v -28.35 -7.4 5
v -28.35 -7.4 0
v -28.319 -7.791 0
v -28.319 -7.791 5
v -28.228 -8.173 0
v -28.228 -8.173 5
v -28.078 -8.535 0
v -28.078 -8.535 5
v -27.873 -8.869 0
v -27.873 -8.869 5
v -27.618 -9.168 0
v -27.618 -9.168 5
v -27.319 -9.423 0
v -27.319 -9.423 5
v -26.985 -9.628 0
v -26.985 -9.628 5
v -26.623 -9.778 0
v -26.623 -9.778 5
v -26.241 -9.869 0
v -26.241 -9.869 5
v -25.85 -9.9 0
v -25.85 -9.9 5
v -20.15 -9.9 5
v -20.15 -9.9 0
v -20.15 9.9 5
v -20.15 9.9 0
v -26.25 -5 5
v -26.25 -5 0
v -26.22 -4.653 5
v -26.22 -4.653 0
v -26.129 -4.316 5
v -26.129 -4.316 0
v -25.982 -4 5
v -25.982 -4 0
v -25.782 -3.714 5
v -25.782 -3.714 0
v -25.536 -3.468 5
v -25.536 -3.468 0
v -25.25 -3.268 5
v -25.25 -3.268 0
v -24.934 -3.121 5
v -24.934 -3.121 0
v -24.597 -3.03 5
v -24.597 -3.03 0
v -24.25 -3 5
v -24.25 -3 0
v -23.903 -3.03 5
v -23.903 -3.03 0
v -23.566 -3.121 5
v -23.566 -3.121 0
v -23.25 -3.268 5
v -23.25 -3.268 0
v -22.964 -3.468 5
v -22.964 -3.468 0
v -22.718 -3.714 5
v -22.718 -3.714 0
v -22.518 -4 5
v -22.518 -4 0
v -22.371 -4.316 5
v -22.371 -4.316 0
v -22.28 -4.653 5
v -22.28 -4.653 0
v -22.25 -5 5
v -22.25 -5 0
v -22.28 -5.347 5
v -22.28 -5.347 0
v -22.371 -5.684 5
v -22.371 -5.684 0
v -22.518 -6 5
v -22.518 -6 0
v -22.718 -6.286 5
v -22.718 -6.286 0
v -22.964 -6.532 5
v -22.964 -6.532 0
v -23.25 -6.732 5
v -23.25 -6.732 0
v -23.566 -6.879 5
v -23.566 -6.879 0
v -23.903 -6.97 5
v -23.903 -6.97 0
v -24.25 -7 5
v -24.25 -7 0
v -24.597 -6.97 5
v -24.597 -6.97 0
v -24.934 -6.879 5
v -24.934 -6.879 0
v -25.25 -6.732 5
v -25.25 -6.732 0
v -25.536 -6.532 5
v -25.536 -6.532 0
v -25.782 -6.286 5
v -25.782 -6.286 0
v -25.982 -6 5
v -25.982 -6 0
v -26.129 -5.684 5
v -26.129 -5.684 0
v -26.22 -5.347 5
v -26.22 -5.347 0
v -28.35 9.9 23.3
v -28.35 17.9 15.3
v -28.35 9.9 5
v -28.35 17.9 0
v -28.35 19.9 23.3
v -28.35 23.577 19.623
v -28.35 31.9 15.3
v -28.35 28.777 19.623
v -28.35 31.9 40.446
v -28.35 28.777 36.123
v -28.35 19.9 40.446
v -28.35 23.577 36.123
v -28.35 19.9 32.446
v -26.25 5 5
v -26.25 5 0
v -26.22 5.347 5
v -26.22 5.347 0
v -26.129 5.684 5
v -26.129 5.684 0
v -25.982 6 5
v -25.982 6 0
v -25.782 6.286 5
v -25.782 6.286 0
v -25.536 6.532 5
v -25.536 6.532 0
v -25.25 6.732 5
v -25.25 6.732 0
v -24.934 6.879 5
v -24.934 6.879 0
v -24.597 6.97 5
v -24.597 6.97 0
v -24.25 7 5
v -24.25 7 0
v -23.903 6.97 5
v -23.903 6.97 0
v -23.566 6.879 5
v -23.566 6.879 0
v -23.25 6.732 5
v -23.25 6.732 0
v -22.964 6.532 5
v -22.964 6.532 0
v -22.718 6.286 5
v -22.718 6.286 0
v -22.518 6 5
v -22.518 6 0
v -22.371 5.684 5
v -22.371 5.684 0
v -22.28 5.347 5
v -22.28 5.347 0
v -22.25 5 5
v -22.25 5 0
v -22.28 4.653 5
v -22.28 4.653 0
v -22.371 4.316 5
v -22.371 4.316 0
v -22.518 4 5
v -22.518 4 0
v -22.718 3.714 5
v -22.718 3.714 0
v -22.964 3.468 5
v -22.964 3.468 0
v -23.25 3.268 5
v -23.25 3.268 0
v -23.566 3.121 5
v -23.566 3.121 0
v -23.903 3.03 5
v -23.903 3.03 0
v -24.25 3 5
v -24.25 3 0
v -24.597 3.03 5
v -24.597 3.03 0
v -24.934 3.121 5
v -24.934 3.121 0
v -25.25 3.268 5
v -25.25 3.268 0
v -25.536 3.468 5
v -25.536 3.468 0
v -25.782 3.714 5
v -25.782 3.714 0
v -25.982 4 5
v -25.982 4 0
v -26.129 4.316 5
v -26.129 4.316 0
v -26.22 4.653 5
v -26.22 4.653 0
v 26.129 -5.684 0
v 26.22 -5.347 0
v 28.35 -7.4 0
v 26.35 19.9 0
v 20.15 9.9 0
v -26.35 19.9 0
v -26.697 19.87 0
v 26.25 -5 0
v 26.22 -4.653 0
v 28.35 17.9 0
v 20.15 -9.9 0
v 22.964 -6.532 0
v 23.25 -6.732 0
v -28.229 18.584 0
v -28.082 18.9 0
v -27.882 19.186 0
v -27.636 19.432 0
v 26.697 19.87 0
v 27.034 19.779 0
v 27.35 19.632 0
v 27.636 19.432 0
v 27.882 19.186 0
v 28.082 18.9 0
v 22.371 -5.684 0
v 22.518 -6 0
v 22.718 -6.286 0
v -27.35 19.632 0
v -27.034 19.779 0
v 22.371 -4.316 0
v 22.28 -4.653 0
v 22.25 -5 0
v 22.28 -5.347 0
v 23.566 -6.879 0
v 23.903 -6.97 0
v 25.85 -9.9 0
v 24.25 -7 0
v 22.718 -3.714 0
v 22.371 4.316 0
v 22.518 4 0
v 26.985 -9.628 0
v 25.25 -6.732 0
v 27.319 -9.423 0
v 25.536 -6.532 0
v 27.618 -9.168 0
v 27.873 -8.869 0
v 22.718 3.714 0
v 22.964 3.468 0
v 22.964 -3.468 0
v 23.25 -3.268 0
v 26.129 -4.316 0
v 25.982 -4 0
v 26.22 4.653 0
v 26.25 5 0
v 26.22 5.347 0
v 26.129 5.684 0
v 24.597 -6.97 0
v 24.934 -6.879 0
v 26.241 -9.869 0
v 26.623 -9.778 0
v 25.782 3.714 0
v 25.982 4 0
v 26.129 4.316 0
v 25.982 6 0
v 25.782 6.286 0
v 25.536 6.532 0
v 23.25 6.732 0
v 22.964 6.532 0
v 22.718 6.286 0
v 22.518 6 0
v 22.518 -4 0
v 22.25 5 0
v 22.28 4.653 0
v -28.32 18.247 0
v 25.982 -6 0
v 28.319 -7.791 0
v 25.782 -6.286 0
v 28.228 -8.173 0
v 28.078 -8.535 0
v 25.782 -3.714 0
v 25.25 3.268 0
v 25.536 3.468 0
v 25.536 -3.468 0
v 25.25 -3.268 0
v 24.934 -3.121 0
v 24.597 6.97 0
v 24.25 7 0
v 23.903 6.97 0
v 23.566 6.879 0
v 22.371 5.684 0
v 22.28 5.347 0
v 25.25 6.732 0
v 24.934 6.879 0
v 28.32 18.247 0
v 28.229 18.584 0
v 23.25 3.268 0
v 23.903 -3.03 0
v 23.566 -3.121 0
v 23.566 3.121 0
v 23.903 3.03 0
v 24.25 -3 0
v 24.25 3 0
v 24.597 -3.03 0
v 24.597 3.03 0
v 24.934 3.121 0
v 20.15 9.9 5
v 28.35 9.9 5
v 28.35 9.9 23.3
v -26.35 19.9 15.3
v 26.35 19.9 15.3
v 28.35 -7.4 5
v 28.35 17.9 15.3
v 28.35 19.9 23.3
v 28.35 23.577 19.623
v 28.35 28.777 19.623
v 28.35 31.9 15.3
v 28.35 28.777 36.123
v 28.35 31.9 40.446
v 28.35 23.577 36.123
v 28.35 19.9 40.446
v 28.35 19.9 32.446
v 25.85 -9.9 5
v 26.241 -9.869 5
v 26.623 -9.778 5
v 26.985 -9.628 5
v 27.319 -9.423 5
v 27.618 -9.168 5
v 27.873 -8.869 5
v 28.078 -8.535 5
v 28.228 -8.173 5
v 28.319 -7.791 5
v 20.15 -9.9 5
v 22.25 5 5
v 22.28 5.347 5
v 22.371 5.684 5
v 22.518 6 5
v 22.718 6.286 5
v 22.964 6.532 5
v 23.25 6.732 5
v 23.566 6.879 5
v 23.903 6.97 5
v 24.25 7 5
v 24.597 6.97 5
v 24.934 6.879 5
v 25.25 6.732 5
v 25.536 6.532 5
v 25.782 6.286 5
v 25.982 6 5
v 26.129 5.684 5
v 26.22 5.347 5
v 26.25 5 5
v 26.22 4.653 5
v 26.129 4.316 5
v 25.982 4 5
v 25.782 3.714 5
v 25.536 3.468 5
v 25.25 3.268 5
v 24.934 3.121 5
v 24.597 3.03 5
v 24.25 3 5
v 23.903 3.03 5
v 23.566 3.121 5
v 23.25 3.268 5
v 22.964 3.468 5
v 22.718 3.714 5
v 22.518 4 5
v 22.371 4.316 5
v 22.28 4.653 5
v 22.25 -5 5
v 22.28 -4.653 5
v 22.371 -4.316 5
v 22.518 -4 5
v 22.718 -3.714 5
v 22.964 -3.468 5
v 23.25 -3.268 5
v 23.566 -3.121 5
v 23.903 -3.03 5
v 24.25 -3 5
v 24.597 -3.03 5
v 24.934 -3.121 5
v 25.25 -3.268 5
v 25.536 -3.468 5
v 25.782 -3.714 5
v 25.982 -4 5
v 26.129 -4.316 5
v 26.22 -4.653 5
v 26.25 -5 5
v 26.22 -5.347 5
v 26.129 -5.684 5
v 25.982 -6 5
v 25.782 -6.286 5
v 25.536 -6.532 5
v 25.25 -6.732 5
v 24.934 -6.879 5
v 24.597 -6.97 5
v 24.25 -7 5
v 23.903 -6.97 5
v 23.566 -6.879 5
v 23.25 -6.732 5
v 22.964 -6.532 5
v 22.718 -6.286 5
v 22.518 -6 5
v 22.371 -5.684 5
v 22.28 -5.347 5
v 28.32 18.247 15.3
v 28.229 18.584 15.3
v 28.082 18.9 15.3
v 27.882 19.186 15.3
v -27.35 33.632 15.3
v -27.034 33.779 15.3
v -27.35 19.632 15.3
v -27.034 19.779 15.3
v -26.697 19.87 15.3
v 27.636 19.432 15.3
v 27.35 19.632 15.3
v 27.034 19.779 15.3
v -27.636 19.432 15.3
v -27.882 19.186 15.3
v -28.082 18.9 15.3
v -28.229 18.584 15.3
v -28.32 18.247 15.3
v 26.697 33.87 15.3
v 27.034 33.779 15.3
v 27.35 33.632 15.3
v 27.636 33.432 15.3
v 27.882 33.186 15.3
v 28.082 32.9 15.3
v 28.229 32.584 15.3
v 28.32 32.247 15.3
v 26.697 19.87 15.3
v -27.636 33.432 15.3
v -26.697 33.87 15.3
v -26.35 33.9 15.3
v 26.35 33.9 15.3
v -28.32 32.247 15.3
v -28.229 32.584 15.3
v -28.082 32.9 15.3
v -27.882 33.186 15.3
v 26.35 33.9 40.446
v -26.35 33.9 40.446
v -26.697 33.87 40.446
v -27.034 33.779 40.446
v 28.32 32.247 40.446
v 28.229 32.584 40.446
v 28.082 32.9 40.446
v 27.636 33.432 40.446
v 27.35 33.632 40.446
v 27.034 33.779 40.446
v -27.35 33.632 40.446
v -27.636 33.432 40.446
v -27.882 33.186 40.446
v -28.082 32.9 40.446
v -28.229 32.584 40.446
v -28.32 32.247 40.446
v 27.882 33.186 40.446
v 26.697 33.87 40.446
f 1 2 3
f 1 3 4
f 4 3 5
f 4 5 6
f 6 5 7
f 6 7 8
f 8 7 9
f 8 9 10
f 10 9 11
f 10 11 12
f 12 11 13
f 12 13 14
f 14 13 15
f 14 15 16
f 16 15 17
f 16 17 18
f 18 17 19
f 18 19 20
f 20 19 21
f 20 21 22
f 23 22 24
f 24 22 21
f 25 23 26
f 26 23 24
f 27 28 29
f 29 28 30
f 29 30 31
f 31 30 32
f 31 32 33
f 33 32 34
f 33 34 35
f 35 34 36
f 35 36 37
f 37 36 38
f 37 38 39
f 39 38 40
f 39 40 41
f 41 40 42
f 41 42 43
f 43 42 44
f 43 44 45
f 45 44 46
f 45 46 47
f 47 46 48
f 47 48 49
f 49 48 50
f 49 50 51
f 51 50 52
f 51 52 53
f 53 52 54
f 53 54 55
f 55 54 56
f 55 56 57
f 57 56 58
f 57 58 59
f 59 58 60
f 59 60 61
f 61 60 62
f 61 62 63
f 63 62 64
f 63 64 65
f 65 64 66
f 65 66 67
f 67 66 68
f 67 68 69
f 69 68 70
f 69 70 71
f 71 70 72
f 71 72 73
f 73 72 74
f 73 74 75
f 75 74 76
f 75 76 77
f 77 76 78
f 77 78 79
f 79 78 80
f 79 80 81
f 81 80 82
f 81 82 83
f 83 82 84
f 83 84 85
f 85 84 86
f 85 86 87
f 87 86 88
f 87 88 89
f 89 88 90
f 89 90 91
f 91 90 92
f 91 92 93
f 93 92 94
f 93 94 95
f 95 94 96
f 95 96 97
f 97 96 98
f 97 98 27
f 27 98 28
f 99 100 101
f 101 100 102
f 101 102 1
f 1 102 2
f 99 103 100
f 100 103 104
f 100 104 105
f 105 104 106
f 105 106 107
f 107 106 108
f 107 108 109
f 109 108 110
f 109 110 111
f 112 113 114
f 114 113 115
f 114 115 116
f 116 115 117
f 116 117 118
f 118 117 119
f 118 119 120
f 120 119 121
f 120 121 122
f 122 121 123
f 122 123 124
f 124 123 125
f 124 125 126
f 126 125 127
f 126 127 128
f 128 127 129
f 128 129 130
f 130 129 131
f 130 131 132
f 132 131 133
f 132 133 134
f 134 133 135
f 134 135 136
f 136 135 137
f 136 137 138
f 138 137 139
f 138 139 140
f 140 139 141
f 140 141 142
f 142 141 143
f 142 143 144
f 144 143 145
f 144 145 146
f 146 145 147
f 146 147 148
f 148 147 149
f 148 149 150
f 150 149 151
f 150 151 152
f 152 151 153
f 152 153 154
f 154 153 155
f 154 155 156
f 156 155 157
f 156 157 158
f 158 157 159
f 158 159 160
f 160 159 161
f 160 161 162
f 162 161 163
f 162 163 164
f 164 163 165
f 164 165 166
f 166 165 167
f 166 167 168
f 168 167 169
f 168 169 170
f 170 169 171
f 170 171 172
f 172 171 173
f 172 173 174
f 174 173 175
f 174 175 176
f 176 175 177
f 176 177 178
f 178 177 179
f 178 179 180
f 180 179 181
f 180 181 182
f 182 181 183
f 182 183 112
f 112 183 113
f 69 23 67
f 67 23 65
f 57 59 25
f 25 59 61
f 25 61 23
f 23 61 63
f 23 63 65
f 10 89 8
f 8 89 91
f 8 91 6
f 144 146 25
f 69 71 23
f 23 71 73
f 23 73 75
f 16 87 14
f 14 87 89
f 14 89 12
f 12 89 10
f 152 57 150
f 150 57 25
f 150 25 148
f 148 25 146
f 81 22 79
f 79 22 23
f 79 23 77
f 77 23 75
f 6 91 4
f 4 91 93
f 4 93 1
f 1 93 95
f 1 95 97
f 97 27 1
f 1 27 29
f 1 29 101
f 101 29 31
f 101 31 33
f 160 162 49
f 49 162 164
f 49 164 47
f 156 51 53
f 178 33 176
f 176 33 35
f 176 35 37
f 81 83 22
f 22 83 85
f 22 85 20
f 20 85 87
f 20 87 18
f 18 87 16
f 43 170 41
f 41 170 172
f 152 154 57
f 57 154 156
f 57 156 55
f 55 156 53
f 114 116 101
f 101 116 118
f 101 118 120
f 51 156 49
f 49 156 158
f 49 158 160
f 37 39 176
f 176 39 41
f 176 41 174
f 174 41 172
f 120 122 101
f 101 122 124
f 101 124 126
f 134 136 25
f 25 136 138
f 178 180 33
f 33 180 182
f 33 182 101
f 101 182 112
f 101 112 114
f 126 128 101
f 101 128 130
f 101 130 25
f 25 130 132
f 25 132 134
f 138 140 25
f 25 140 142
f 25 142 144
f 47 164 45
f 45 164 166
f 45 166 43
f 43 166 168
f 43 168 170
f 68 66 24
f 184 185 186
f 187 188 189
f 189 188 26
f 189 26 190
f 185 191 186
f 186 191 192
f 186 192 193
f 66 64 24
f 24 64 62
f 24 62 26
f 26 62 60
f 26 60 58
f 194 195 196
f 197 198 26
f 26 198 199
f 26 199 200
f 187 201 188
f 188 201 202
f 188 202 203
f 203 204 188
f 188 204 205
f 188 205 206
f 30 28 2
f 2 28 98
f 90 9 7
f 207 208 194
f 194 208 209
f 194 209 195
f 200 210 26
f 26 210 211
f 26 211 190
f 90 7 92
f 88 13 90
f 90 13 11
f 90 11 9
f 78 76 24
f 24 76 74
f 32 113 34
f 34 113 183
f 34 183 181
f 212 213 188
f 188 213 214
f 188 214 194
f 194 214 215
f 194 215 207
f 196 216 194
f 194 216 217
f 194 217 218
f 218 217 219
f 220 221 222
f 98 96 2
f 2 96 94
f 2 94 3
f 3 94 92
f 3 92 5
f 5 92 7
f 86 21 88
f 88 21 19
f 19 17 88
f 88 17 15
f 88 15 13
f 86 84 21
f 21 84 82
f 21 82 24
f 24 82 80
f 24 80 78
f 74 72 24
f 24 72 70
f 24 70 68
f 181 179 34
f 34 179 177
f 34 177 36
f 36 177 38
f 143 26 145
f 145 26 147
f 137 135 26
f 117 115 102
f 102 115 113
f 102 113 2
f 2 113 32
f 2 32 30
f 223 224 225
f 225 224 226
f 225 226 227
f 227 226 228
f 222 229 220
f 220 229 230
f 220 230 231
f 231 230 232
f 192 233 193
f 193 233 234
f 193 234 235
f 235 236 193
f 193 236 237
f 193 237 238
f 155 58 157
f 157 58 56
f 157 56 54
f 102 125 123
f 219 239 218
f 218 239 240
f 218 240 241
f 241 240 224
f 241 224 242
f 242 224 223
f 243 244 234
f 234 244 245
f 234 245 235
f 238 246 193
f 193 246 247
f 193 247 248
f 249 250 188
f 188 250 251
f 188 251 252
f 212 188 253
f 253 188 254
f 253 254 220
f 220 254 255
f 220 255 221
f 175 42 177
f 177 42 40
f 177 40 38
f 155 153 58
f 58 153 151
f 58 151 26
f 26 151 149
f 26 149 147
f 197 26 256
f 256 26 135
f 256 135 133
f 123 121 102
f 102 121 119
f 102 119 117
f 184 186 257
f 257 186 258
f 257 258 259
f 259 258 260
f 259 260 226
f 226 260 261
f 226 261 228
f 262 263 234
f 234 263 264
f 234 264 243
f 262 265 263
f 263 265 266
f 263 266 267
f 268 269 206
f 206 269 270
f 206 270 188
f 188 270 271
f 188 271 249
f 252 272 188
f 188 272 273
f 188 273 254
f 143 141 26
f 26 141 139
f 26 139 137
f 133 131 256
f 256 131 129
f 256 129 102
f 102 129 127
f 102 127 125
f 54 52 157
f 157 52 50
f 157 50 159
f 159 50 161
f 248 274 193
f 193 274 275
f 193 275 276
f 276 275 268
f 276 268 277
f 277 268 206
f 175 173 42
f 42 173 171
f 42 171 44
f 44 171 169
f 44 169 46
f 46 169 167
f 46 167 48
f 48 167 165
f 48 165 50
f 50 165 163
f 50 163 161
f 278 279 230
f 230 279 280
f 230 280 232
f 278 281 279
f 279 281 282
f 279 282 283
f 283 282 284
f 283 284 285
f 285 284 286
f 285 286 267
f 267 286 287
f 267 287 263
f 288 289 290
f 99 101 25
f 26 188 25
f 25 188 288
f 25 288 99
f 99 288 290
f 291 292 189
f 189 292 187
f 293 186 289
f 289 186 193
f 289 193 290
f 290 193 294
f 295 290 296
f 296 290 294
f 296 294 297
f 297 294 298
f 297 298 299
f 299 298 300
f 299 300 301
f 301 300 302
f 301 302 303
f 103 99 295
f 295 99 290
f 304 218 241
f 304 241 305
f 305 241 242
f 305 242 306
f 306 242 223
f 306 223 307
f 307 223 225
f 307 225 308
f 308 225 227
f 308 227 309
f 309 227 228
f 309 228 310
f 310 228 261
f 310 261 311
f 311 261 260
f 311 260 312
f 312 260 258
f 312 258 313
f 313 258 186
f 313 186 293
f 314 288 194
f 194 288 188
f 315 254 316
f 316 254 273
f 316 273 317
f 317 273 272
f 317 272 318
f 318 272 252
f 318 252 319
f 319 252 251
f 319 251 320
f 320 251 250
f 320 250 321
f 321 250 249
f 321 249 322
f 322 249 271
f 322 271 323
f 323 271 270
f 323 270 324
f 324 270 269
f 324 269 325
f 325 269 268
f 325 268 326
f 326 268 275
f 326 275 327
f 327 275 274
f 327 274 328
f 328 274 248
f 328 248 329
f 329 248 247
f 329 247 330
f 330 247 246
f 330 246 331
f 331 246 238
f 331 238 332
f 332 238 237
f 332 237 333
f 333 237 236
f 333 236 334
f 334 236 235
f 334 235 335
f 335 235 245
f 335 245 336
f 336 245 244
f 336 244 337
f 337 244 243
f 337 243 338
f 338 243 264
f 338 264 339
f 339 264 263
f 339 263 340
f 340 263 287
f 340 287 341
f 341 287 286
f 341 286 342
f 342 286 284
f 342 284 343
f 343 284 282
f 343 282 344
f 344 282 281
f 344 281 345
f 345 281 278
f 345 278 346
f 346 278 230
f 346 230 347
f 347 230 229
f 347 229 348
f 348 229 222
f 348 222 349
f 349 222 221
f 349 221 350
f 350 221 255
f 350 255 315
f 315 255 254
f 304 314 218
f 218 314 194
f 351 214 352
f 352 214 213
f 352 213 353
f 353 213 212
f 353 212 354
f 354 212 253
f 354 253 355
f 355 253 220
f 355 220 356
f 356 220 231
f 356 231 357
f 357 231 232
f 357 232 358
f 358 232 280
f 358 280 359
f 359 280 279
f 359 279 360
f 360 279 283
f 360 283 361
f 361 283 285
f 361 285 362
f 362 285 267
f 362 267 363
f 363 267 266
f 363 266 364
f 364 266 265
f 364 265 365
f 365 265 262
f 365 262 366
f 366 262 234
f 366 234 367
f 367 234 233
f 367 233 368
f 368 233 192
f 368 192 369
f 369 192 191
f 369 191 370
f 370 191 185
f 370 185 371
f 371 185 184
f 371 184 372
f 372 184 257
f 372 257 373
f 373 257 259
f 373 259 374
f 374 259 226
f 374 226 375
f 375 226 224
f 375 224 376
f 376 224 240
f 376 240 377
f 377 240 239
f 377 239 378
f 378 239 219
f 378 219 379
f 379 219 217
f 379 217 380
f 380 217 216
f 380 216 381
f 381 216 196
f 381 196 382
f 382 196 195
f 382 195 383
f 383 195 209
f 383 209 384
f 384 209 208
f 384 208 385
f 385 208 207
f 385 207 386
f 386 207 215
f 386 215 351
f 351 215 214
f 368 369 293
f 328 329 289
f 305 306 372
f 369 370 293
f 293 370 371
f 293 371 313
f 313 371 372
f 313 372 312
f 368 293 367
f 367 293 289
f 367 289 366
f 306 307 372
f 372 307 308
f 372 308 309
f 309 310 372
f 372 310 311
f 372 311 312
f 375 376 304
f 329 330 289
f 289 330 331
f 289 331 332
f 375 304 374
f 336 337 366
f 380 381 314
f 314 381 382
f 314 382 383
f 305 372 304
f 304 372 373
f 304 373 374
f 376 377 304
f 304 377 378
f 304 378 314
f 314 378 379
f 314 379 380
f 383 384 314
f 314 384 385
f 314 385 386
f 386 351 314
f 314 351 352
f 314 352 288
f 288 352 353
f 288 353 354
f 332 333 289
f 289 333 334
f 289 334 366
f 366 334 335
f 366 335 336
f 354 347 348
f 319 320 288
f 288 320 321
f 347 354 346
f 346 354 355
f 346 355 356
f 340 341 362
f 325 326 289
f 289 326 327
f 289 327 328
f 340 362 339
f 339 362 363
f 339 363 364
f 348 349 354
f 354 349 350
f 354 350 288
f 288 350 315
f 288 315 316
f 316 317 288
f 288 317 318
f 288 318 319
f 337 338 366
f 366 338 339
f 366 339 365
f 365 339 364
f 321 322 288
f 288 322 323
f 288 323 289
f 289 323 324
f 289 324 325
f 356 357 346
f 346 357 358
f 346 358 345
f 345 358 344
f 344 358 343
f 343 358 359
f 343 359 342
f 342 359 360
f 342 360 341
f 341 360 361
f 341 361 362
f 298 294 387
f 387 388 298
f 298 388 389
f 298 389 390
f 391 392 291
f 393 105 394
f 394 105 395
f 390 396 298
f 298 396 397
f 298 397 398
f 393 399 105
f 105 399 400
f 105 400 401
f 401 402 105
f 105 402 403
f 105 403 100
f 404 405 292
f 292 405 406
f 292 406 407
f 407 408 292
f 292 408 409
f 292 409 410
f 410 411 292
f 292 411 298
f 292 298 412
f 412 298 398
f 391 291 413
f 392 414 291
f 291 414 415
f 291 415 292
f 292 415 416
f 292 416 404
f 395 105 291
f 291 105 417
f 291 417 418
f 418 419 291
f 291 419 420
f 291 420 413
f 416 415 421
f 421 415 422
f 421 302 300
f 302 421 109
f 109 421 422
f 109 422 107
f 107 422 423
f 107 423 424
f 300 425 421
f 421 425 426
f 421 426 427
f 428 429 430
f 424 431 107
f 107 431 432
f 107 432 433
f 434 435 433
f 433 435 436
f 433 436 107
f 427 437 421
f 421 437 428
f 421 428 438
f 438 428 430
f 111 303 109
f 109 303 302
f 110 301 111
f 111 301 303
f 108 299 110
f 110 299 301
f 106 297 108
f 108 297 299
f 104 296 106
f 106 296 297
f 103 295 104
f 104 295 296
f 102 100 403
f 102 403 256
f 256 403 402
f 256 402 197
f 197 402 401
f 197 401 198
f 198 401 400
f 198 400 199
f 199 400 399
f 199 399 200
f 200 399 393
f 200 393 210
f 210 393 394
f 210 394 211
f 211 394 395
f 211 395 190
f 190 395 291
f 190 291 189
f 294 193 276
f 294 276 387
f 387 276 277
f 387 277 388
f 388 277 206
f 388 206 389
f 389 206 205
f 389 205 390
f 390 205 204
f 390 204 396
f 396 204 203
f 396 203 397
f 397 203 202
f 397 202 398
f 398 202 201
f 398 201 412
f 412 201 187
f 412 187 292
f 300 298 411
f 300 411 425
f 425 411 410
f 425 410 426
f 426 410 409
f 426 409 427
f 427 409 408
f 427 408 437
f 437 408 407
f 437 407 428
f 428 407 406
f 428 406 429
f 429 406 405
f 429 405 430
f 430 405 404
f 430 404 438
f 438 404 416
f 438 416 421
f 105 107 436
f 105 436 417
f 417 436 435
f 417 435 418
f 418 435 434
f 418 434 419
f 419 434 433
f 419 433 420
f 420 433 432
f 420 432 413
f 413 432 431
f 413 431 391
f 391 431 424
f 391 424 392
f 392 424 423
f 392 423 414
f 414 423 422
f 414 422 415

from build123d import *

# Parameters (mm, degrees)
SKETCH1_R               = 2
FORMA_B_SICA_DEPTH      = 5
FORMA_B_SICA_2_DEPTH    = 5
BOSS_EXTRUDE2_DEPTH     = 23.3
CARRIL_CREMALLERA_DEPTH = 56.7
ELIMINAR_FILETE_DEPTH   = 23.3
FILLET2_R               = 2


with BuildPart() as part:
    # Sketch1 → Forma básica (new body)
    with BuildSketch(Plane.XY):
        with BuildLine():
            ThreePointArc((-25.85, -9.9), (-27.617766953, -9.167766953), (-28.35, -7.4))
            Line((-28.35, -7.4), (-28.35, 9.9))
            Line((-28.35, 9.9), (-20.15, 9.9))
            Line((-20.15, 9.9), (-20.15, -9.9))
            Line((-20.15, -9.9), (-25.85, -9.9))
        make_face()
        with Locations((-24.25, -5)):
            Circle(SKETCH1_R, mode=Mode.SUBTRACT)
        with Locations((-24.25, 5)):
            Circle(SKETCH1_R, mode=Mode.SUBTRACT)
    extrude(amount=FORMA_B_SICA_DEPTH)



with BuildPart() as body_2:
    # Sketch1 → Forma b_sica 2 (new body)
    with BuildSketch(Plane.XY):
        with BuildLine():
            ThreePointArc((28.35, -7.4), (27.617766953, -9.167766953), (25.85, -9.9))
            Line((25.85, -9.9), (20.15, -9.9))
            Line((20.15, -9.9), (20.15, 9.9))
            Line((20.15, 9.9), (28.35, 9.9))
            Line((28.35, 9.9), (28.35, -7.4))
        make_face()
        with Locations((24.25, 5)):
            Circle(SKETCH1_R, mode=Mode.SUBTRACT)
        with Locations((24.25, -5)):
            Circle(SKETCH1_R, mode=Mode.SUBTRACT)
    extrude(amount=FORMA_B_SICA_2_DEPTH)


with BuildPart() as part_1:
    add(part.part)

    add(body_2.part)  # Boss-Extrude2 merges body 2
    # Sketch1<3> → Boss-Extrude2 (add)
    with BuildSketch(Plane.XY):
        with BuildLine():
            Line((-28.35, 9.9), (-20.15, 9.9))
            Line((-20.15, 9.9), (20.15, 9.9))
            Line((20.15, 9.9), (28.35, 9.9))
            Line((28.35, 9.9), (28.35, 17.4))
            ThreePointArc((28.35, 17.4), (27.617766953, 19.167766953), (25.85, 19.9))
            Line((25.85, 19.9), (-25.85, 19.9))
            ThreePointArc((-25.85, 19.9), (-27.617766953, 19.167766953), (-28.35, 17.4))
            Line((-28.35, 17.4), (-28.35, 9.9))
        make_face()
    extrude(amount=BOSS_EXTRUDE2_DEPTH)

    # Sketch2 → Carril cremallera (add)
    with BuildSketch(Plane(origin=(28.35, 0, 0), x_dir=(0, 0, -1), z_dir=(1, 0, 0))):
        Polygon((-23.3, 19.9), (-19.623044738, 23.576955262), (-19.623044738, 28.776955262), (-36.123044738, 28.776955262), (-36.123044738, 23.576955262), (-32.446089476, 19.9), (-40.446089476, 19.9), (-40.446089476, 33.9), (-15.3, 33.9), (-15.3, 19.9), align=None)
    extrude(amount=-CARRIL_CREMALLERA_DEPTH)

    # Sketch3 → Eliminar filete (add)
    with BuildSketch(Plane.XY.offset(23.3)):
        with BuildLine():
            Line((-28.35, 17.4), (-28.35, 19.9))
            Line((-28.35, 19.9), (-25.85, 19.9))
            ThreePointArc((-25.85, 19.9), (-27.617766953, 19.167766953), (-28.35, 17.4))
        make_face()
        with BuildLine():
            Line((28.35, 19.9), (25.85, 19.9))
            ThreePointArc((25.85, 19.9), (27.617766953, 19.167766953), (28.35, 17.4))
            Line((28.35, 17.4), (28.35, 19.9))
        make_face()
    extrude(amount=-ELIMINAR_FILETE_DEPTH)

    # Fillet2
    fillet2_edges = [part_1.edges().sort_by_distance(p)[0] for p in [
        (28.35, 33.9, 27.873044738),
        (-28.35, 33.9, 27.873044738),
        (-28.35, 19.9, 7.65),
        (28.35, 19.9, 7.65),
    ]]
    fillet(fillet2_edges, radius=FILLET2_R)


solid = part_1.part
